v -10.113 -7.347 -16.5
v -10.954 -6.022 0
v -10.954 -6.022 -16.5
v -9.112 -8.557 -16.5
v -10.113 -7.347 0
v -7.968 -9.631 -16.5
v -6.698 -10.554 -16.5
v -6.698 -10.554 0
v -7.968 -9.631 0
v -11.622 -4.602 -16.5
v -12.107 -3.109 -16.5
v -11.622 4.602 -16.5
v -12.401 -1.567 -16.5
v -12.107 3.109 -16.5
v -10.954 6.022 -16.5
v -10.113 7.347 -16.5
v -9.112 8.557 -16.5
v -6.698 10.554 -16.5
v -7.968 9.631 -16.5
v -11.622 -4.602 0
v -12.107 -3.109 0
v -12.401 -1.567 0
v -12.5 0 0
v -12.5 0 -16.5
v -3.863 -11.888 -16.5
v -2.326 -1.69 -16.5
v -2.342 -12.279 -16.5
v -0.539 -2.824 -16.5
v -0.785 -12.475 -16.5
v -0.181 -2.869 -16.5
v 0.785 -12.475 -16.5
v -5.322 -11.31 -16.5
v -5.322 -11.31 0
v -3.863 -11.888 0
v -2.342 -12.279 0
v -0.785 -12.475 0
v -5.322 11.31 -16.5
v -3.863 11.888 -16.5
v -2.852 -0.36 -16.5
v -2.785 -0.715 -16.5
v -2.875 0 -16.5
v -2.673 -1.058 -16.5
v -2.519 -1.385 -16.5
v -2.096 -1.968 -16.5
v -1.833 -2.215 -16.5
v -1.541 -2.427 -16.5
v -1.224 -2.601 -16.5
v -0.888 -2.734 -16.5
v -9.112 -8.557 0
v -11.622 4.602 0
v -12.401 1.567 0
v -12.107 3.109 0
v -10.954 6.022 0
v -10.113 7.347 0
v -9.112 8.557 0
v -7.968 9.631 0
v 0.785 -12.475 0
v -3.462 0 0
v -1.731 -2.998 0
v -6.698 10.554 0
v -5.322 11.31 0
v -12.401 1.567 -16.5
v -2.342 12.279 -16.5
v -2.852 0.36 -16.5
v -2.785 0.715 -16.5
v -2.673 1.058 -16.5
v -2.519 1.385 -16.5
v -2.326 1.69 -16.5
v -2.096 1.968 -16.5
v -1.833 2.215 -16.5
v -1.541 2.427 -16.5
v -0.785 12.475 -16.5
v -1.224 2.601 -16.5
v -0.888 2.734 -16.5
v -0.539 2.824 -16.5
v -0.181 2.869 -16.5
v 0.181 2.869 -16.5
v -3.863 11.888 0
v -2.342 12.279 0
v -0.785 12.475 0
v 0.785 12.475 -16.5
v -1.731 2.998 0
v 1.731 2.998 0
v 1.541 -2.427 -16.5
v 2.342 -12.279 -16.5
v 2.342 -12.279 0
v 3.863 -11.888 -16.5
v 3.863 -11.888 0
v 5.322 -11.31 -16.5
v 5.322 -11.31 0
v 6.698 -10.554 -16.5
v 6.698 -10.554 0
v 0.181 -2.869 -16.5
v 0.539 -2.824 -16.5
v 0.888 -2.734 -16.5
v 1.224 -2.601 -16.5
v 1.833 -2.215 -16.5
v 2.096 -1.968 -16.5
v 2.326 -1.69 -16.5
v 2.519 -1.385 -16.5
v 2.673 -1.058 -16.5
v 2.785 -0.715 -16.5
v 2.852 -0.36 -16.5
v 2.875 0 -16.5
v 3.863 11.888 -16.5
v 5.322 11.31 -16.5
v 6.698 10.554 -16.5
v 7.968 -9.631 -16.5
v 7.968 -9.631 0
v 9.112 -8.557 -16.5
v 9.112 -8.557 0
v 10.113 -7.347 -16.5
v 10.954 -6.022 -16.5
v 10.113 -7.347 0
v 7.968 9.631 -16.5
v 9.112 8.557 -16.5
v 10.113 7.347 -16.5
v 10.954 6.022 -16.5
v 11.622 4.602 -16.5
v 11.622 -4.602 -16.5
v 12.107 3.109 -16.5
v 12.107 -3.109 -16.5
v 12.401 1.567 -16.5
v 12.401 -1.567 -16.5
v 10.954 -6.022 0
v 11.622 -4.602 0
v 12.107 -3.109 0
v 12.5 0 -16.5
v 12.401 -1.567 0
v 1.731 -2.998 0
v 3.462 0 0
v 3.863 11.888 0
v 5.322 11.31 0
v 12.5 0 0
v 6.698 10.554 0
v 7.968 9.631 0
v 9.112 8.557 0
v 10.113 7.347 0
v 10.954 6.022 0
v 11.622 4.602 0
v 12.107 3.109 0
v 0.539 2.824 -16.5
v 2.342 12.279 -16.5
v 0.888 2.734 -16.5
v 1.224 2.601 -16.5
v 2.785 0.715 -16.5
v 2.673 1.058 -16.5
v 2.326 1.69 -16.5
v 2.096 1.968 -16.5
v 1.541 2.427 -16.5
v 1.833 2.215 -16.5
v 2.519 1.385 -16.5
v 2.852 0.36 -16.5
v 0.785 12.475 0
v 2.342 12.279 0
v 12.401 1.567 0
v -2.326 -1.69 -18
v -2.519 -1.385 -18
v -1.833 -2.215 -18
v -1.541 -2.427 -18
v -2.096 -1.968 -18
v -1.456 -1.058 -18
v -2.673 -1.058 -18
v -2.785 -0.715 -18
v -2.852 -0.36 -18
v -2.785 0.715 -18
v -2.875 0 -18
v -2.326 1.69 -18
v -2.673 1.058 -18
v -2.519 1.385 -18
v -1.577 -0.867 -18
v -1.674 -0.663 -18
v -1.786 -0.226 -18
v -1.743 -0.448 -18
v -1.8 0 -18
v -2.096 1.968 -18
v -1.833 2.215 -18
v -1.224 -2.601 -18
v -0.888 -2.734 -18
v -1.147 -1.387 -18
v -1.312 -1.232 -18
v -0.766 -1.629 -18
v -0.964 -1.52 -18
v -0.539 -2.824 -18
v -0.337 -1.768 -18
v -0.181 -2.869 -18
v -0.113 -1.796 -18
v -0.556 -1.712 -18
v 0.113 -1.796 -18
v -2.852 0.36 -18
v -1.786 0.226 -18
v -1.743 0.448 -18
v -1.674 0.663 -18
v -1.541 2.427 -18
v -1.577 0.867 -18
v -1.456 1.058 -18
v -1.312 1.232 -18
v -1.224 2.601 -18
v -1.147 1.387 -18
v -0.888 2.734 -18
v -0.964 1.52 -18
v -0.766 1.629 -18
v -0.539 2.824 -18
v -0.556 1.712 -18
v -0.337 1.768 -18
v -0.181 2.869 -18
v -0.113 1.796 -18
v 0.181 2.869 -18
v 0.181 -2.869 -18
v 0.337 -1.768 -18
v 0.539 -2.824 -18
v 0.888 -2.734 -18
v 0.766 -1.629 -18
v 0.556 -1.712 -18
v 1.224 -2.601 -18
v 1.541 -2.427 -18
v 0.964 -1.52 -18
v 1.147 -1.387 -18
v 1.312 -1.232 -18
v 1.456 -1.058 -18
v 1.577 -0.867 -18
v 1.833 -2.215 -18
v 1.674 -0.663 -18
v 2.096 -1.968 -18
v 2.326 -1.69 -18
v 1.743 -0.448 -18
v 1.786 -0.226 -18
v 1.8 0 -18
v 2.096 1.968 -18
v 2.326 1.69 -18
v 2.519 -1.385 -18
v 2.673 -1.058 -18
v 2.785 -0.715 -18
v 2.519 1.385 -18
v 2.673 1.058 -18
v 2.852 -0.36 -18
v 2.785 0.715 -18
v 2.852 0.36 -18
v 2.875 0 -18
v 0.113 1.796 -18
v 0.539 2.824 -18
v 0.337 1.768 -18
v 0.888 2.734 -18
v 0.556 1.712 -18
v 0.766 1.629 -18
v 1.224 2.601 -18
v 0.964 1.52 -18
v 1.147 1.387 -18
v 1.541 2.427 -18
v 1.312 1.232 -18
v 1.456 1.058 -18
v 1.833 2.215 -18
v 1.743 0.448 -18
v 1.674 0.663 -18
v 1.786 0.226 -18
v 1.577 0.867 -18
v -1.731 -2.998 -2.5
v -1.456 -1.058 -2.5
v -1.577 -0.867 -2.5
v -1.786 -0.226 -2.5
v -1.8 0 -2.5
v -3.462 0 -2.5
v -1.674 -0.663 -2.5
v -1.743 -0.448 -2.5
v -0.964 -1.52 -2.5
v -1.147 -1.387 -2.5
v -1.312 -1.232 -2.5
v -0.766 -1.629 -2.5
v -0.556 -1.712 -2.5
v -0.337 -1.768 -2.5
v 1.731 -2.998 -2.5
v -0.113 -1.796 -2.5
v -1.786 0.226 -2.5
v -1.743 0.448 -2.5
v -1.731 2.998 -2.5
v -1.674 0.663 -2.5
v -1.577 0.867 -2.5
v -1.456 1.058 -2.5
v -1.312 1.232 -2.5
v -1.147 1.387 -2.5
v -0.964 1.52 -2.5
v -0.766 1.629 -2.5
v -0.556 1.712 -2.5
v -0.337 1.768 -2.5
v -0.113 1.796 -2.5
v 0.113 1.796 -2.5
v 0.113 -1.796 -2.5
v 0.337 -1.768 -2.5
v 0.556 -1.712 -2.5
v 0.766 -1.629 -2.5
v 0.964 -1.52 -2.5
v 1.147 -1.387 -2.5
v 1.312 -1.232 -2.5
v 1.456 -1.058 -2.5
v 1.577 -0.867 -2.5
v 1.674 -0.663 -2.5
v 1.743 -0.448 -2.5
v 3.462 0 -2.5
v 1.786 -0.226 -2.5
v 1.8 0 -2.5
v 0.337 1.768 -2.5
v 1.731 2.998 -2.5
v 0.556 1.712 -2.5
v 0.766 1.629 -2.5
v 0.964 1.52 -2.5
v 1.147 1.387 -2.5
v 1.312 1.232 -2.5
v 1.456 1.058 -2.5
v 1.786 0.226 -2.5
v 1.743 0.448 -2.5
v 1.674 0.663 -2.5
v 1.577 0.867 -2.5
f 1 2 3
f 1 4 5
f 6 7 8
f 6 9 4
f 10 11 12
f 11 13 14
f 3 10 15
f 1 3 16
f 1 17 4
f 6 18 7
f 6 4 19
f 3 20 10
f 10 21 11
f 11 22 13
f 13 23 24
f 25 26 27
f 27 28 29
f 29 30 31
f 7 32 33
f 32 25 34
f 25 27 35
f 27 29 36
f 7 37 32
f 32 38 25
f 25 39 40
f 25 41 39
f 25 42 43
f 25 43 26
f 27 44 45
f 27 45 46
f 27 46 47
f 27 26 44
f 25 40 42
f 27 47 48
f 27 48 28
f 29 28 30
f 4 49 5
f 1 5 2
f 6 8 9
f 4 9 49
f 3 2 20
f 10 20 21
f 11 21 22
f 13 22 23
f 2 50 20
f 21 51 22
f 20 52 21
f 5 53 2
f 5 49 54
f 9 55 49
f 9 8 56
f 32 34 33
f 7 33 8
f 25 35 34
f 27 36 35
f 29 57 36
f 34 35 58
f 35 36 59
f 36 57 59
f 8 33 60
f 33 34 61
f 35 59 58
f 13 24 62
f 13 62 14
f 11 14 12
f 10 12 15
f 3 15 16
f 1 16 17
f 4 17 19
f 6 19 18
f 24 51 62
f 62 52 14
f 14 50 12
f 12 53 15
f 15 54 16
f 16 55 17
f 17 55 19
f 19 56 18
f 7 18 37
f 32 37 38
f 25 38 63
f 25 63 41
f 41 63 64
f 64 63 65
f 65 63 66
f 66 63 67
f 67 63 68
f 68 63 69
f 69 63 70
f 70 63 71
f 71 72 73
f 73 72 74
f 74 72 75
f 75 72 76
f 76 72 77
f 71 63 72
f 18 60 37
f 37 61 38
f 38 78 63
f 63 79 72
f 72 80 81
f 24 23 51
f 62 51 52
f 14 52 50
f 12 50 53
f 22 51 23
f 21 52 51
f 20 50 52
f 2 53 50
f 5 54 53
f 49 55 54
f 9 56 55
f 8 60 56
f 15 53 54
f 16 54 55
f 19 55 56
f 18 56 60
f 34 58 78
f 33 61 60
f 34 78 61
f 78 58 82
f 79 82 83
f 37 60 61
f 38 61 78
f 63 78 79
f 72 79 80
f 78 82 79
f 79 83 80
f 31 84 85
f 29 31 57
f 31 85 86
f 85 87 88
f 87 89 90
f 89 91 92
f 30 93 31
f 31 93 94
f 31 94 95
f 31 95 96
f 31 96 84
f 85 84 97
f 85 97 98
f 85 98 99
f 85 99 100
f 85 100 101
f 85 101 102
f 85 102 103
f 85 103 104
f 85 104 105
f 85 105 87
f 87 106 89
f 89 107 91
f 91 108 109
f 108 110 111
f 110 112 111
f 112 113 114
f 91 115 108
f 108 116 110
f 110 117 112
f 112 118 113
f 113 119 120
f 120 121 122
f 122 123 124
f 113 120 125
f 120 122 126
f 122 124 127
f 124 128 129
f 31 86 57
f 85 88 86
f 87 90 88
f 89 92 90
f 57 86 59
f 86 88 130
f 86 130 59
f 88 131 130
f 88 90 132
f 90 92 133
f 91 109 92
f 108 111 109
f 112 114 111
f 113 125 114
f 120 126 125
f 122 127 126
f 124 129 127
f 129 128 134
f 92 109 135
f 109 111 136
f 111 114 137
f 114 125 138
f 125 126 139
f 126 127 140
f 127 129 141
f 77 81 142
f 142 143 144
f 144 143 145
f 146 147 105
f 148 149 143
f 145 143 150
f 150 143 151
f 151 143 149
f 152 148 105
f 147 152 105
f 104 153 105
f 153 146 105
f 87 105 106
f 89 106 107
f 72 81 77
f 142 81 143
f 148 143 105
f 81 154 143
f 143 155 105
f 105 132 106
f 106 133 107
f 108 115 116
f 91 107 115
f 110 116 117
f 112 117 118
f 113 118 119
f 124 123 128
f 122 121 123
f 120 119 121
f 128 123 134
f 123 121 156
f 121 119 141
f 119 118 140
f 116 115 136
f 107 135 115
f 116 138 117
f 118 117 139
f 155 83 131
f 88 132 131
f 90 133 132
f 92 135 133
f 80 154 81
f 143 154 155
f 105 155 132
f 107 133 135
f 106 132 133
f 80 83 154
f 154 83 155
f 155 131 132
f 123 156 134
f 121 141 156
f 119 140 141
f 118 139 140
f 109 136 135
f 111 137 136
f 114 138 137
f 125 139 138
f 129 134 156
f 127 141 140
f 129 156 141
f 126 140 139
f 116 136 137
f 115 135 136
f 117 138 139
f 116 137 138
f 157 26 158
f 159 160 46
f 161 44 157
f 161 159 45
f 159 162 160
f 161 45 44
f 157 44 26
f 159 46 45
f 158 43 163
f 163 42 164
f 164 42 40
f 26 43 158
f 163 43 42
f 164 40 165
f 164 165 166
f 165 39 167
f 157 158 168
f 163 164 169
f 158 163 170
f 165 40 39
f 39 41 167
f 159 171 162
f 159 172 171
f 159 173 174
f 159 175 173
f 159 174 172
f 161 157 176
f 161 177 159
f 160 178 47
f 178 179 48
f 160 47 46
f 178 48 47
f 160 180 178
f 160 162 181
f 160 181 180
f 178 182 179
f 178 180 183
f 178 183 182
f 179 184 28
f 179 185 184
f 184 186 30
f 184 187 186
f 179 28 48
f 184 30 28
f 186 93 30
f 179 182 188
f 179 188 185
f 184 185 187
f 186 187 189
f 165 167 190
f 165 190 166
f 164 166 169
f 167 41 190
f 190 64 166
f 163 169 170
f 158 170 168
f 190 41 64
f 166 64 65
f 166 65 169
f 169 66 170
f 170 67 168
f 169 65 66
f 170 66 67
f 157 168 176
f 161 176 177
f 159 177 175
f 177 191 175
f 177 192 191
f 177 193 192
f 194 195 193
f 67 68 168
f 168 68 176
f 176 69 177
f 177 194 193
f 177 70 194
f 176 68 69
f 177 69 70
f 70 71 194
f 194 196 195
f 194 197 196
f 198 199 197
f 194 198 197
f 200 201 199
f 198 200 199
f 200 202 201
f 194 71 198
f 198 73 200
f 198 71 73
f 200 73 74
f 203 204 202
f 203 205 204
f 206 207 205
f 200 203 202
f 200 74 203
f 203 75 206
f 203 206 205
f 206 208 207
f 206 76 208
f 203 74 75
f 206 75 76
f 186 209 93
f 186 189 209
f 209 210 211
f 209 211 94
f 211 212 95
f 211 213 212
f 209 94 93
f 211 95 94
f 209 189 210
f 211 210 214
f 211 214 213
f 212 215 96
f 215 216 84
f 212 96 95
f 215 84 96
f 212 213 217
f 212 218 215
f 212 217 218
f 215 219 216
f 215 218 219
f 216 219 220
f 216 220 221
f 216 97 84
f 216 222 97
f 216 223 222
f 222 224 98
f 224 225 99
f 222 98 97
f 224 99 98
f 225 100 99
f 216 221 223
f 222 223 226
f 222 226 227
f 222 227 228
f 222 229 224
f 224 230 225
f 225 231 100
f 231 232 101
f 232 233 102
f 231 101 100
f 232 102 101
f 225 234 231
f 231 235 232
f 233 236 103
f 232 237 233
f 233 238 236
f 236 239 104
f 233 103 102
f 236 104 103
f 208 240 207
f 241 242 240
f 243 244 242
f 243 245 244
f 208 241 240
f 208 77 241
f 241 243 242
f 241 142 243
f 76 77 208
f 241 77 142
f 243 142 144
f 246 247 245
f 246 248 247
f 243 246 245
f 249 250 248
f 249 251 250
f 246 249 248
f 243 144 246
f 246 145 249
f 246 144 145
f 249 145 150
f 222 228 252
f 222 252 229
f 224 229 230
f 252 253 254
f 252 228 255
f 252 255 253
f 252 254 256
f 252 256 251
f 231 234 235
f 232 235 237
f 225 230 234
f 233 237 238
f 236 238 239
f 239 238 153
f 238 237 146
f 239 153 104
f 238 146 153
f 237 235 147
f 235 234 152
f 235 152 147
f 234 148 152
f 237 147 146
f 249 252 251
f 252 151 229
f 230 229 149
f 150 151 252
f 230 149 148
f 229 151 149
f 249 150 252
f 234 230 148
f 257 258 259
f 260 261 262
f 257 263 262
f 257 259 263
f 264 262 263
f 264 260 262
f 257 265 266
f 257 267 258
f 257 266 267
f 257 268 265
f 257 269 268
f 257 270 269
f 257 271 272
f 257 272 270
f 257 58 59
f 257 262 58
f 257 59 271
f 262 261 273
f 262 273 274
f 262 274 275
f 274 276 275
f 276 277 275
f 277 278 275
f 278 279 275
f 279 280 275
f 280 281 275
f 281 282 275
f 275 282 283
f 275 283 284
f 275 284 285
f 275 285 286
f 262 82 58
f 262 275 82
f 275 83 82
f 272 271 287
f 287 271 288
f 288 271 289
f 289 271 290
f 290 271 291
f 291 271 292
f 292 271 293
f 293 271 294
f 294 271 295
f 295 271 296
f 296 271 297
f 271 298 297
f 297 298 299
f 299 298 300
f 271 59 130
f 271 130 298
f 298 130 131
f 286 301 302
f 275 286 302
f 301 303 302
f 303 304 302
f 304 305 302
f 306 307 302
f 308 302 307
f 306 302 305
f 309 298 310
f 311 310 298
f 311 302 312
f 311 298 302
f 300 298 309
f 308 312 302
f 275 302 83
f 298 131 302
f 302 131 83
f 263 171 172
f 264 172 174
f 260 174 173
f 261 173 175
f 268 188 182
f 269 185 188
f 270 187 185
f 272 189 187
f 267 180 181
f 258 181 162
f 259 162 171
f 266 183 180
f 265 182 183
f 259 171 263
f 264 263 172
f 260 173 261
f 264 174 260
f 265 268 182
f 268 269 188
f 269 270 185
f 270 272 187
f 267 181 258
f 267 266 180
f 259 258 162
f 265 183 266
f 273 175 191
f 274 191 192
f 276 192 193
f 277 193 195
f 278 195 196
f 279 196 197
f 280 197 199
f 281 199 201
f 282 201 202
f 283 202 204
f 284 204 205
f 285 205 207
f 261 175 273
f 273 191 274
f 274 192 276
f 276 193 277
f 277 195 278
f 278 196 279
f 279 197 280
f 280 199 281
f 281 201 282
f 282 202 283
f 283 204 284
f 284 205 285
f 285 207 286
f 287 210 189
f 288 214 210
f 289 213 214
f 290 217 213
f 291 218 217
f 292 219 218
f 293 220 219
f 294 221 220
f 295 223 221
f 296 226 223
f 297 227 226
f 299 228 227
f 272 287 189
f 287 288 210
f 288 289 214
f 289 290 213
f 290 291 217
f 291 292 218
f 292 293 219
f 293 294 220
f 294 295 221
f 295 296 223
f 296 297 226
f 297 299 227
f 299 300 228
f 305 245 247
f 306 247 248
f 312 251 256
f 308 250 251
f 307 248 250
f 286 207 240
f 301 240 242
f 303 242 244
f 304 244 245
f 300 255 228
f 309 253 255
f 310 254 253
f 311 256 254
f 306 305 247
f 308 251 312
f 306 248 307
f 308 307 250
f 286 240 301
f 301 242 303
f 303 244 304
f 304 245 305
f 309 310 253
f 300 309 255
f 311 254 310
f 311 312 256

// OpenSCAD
$fn = 50;

difference() {
	union() {
		translate(v = [0, 0, -16.5]) {
			cylinder(h = 16.5, r = 12.5);
		}
		#translate(v = [0, 0, -18.0]) {
			cylinder(h = 18, r = 2.875);
		}
	}
	union() {
		translate(v = [0, 0, 0]) {
			rotate(a = [0, 0, 0]) {
				difference() {
					union() {
						translate(v = [0, 0, -2.5]) {
							linear_extrude(height = 2.5) {
								polygon(points = [[3.4619999999999997, 0.0], [1.7310000000000003, 2.9981799479017264], [-1.7309999999999992, 2.9981799479017264], [-3.4619999999999997, 4.2397272186481365e-16], [-1.7310000000000014, -2.998179947901726], [1.7309999999999977, -2.9981799479017277]]);
							}
						}
					}
					union();
				}
			}
		}
		#translate(v = [0, 0, -100.0]) {
			cylinder(h = 200, r = 1.8);
		}
	}
}
